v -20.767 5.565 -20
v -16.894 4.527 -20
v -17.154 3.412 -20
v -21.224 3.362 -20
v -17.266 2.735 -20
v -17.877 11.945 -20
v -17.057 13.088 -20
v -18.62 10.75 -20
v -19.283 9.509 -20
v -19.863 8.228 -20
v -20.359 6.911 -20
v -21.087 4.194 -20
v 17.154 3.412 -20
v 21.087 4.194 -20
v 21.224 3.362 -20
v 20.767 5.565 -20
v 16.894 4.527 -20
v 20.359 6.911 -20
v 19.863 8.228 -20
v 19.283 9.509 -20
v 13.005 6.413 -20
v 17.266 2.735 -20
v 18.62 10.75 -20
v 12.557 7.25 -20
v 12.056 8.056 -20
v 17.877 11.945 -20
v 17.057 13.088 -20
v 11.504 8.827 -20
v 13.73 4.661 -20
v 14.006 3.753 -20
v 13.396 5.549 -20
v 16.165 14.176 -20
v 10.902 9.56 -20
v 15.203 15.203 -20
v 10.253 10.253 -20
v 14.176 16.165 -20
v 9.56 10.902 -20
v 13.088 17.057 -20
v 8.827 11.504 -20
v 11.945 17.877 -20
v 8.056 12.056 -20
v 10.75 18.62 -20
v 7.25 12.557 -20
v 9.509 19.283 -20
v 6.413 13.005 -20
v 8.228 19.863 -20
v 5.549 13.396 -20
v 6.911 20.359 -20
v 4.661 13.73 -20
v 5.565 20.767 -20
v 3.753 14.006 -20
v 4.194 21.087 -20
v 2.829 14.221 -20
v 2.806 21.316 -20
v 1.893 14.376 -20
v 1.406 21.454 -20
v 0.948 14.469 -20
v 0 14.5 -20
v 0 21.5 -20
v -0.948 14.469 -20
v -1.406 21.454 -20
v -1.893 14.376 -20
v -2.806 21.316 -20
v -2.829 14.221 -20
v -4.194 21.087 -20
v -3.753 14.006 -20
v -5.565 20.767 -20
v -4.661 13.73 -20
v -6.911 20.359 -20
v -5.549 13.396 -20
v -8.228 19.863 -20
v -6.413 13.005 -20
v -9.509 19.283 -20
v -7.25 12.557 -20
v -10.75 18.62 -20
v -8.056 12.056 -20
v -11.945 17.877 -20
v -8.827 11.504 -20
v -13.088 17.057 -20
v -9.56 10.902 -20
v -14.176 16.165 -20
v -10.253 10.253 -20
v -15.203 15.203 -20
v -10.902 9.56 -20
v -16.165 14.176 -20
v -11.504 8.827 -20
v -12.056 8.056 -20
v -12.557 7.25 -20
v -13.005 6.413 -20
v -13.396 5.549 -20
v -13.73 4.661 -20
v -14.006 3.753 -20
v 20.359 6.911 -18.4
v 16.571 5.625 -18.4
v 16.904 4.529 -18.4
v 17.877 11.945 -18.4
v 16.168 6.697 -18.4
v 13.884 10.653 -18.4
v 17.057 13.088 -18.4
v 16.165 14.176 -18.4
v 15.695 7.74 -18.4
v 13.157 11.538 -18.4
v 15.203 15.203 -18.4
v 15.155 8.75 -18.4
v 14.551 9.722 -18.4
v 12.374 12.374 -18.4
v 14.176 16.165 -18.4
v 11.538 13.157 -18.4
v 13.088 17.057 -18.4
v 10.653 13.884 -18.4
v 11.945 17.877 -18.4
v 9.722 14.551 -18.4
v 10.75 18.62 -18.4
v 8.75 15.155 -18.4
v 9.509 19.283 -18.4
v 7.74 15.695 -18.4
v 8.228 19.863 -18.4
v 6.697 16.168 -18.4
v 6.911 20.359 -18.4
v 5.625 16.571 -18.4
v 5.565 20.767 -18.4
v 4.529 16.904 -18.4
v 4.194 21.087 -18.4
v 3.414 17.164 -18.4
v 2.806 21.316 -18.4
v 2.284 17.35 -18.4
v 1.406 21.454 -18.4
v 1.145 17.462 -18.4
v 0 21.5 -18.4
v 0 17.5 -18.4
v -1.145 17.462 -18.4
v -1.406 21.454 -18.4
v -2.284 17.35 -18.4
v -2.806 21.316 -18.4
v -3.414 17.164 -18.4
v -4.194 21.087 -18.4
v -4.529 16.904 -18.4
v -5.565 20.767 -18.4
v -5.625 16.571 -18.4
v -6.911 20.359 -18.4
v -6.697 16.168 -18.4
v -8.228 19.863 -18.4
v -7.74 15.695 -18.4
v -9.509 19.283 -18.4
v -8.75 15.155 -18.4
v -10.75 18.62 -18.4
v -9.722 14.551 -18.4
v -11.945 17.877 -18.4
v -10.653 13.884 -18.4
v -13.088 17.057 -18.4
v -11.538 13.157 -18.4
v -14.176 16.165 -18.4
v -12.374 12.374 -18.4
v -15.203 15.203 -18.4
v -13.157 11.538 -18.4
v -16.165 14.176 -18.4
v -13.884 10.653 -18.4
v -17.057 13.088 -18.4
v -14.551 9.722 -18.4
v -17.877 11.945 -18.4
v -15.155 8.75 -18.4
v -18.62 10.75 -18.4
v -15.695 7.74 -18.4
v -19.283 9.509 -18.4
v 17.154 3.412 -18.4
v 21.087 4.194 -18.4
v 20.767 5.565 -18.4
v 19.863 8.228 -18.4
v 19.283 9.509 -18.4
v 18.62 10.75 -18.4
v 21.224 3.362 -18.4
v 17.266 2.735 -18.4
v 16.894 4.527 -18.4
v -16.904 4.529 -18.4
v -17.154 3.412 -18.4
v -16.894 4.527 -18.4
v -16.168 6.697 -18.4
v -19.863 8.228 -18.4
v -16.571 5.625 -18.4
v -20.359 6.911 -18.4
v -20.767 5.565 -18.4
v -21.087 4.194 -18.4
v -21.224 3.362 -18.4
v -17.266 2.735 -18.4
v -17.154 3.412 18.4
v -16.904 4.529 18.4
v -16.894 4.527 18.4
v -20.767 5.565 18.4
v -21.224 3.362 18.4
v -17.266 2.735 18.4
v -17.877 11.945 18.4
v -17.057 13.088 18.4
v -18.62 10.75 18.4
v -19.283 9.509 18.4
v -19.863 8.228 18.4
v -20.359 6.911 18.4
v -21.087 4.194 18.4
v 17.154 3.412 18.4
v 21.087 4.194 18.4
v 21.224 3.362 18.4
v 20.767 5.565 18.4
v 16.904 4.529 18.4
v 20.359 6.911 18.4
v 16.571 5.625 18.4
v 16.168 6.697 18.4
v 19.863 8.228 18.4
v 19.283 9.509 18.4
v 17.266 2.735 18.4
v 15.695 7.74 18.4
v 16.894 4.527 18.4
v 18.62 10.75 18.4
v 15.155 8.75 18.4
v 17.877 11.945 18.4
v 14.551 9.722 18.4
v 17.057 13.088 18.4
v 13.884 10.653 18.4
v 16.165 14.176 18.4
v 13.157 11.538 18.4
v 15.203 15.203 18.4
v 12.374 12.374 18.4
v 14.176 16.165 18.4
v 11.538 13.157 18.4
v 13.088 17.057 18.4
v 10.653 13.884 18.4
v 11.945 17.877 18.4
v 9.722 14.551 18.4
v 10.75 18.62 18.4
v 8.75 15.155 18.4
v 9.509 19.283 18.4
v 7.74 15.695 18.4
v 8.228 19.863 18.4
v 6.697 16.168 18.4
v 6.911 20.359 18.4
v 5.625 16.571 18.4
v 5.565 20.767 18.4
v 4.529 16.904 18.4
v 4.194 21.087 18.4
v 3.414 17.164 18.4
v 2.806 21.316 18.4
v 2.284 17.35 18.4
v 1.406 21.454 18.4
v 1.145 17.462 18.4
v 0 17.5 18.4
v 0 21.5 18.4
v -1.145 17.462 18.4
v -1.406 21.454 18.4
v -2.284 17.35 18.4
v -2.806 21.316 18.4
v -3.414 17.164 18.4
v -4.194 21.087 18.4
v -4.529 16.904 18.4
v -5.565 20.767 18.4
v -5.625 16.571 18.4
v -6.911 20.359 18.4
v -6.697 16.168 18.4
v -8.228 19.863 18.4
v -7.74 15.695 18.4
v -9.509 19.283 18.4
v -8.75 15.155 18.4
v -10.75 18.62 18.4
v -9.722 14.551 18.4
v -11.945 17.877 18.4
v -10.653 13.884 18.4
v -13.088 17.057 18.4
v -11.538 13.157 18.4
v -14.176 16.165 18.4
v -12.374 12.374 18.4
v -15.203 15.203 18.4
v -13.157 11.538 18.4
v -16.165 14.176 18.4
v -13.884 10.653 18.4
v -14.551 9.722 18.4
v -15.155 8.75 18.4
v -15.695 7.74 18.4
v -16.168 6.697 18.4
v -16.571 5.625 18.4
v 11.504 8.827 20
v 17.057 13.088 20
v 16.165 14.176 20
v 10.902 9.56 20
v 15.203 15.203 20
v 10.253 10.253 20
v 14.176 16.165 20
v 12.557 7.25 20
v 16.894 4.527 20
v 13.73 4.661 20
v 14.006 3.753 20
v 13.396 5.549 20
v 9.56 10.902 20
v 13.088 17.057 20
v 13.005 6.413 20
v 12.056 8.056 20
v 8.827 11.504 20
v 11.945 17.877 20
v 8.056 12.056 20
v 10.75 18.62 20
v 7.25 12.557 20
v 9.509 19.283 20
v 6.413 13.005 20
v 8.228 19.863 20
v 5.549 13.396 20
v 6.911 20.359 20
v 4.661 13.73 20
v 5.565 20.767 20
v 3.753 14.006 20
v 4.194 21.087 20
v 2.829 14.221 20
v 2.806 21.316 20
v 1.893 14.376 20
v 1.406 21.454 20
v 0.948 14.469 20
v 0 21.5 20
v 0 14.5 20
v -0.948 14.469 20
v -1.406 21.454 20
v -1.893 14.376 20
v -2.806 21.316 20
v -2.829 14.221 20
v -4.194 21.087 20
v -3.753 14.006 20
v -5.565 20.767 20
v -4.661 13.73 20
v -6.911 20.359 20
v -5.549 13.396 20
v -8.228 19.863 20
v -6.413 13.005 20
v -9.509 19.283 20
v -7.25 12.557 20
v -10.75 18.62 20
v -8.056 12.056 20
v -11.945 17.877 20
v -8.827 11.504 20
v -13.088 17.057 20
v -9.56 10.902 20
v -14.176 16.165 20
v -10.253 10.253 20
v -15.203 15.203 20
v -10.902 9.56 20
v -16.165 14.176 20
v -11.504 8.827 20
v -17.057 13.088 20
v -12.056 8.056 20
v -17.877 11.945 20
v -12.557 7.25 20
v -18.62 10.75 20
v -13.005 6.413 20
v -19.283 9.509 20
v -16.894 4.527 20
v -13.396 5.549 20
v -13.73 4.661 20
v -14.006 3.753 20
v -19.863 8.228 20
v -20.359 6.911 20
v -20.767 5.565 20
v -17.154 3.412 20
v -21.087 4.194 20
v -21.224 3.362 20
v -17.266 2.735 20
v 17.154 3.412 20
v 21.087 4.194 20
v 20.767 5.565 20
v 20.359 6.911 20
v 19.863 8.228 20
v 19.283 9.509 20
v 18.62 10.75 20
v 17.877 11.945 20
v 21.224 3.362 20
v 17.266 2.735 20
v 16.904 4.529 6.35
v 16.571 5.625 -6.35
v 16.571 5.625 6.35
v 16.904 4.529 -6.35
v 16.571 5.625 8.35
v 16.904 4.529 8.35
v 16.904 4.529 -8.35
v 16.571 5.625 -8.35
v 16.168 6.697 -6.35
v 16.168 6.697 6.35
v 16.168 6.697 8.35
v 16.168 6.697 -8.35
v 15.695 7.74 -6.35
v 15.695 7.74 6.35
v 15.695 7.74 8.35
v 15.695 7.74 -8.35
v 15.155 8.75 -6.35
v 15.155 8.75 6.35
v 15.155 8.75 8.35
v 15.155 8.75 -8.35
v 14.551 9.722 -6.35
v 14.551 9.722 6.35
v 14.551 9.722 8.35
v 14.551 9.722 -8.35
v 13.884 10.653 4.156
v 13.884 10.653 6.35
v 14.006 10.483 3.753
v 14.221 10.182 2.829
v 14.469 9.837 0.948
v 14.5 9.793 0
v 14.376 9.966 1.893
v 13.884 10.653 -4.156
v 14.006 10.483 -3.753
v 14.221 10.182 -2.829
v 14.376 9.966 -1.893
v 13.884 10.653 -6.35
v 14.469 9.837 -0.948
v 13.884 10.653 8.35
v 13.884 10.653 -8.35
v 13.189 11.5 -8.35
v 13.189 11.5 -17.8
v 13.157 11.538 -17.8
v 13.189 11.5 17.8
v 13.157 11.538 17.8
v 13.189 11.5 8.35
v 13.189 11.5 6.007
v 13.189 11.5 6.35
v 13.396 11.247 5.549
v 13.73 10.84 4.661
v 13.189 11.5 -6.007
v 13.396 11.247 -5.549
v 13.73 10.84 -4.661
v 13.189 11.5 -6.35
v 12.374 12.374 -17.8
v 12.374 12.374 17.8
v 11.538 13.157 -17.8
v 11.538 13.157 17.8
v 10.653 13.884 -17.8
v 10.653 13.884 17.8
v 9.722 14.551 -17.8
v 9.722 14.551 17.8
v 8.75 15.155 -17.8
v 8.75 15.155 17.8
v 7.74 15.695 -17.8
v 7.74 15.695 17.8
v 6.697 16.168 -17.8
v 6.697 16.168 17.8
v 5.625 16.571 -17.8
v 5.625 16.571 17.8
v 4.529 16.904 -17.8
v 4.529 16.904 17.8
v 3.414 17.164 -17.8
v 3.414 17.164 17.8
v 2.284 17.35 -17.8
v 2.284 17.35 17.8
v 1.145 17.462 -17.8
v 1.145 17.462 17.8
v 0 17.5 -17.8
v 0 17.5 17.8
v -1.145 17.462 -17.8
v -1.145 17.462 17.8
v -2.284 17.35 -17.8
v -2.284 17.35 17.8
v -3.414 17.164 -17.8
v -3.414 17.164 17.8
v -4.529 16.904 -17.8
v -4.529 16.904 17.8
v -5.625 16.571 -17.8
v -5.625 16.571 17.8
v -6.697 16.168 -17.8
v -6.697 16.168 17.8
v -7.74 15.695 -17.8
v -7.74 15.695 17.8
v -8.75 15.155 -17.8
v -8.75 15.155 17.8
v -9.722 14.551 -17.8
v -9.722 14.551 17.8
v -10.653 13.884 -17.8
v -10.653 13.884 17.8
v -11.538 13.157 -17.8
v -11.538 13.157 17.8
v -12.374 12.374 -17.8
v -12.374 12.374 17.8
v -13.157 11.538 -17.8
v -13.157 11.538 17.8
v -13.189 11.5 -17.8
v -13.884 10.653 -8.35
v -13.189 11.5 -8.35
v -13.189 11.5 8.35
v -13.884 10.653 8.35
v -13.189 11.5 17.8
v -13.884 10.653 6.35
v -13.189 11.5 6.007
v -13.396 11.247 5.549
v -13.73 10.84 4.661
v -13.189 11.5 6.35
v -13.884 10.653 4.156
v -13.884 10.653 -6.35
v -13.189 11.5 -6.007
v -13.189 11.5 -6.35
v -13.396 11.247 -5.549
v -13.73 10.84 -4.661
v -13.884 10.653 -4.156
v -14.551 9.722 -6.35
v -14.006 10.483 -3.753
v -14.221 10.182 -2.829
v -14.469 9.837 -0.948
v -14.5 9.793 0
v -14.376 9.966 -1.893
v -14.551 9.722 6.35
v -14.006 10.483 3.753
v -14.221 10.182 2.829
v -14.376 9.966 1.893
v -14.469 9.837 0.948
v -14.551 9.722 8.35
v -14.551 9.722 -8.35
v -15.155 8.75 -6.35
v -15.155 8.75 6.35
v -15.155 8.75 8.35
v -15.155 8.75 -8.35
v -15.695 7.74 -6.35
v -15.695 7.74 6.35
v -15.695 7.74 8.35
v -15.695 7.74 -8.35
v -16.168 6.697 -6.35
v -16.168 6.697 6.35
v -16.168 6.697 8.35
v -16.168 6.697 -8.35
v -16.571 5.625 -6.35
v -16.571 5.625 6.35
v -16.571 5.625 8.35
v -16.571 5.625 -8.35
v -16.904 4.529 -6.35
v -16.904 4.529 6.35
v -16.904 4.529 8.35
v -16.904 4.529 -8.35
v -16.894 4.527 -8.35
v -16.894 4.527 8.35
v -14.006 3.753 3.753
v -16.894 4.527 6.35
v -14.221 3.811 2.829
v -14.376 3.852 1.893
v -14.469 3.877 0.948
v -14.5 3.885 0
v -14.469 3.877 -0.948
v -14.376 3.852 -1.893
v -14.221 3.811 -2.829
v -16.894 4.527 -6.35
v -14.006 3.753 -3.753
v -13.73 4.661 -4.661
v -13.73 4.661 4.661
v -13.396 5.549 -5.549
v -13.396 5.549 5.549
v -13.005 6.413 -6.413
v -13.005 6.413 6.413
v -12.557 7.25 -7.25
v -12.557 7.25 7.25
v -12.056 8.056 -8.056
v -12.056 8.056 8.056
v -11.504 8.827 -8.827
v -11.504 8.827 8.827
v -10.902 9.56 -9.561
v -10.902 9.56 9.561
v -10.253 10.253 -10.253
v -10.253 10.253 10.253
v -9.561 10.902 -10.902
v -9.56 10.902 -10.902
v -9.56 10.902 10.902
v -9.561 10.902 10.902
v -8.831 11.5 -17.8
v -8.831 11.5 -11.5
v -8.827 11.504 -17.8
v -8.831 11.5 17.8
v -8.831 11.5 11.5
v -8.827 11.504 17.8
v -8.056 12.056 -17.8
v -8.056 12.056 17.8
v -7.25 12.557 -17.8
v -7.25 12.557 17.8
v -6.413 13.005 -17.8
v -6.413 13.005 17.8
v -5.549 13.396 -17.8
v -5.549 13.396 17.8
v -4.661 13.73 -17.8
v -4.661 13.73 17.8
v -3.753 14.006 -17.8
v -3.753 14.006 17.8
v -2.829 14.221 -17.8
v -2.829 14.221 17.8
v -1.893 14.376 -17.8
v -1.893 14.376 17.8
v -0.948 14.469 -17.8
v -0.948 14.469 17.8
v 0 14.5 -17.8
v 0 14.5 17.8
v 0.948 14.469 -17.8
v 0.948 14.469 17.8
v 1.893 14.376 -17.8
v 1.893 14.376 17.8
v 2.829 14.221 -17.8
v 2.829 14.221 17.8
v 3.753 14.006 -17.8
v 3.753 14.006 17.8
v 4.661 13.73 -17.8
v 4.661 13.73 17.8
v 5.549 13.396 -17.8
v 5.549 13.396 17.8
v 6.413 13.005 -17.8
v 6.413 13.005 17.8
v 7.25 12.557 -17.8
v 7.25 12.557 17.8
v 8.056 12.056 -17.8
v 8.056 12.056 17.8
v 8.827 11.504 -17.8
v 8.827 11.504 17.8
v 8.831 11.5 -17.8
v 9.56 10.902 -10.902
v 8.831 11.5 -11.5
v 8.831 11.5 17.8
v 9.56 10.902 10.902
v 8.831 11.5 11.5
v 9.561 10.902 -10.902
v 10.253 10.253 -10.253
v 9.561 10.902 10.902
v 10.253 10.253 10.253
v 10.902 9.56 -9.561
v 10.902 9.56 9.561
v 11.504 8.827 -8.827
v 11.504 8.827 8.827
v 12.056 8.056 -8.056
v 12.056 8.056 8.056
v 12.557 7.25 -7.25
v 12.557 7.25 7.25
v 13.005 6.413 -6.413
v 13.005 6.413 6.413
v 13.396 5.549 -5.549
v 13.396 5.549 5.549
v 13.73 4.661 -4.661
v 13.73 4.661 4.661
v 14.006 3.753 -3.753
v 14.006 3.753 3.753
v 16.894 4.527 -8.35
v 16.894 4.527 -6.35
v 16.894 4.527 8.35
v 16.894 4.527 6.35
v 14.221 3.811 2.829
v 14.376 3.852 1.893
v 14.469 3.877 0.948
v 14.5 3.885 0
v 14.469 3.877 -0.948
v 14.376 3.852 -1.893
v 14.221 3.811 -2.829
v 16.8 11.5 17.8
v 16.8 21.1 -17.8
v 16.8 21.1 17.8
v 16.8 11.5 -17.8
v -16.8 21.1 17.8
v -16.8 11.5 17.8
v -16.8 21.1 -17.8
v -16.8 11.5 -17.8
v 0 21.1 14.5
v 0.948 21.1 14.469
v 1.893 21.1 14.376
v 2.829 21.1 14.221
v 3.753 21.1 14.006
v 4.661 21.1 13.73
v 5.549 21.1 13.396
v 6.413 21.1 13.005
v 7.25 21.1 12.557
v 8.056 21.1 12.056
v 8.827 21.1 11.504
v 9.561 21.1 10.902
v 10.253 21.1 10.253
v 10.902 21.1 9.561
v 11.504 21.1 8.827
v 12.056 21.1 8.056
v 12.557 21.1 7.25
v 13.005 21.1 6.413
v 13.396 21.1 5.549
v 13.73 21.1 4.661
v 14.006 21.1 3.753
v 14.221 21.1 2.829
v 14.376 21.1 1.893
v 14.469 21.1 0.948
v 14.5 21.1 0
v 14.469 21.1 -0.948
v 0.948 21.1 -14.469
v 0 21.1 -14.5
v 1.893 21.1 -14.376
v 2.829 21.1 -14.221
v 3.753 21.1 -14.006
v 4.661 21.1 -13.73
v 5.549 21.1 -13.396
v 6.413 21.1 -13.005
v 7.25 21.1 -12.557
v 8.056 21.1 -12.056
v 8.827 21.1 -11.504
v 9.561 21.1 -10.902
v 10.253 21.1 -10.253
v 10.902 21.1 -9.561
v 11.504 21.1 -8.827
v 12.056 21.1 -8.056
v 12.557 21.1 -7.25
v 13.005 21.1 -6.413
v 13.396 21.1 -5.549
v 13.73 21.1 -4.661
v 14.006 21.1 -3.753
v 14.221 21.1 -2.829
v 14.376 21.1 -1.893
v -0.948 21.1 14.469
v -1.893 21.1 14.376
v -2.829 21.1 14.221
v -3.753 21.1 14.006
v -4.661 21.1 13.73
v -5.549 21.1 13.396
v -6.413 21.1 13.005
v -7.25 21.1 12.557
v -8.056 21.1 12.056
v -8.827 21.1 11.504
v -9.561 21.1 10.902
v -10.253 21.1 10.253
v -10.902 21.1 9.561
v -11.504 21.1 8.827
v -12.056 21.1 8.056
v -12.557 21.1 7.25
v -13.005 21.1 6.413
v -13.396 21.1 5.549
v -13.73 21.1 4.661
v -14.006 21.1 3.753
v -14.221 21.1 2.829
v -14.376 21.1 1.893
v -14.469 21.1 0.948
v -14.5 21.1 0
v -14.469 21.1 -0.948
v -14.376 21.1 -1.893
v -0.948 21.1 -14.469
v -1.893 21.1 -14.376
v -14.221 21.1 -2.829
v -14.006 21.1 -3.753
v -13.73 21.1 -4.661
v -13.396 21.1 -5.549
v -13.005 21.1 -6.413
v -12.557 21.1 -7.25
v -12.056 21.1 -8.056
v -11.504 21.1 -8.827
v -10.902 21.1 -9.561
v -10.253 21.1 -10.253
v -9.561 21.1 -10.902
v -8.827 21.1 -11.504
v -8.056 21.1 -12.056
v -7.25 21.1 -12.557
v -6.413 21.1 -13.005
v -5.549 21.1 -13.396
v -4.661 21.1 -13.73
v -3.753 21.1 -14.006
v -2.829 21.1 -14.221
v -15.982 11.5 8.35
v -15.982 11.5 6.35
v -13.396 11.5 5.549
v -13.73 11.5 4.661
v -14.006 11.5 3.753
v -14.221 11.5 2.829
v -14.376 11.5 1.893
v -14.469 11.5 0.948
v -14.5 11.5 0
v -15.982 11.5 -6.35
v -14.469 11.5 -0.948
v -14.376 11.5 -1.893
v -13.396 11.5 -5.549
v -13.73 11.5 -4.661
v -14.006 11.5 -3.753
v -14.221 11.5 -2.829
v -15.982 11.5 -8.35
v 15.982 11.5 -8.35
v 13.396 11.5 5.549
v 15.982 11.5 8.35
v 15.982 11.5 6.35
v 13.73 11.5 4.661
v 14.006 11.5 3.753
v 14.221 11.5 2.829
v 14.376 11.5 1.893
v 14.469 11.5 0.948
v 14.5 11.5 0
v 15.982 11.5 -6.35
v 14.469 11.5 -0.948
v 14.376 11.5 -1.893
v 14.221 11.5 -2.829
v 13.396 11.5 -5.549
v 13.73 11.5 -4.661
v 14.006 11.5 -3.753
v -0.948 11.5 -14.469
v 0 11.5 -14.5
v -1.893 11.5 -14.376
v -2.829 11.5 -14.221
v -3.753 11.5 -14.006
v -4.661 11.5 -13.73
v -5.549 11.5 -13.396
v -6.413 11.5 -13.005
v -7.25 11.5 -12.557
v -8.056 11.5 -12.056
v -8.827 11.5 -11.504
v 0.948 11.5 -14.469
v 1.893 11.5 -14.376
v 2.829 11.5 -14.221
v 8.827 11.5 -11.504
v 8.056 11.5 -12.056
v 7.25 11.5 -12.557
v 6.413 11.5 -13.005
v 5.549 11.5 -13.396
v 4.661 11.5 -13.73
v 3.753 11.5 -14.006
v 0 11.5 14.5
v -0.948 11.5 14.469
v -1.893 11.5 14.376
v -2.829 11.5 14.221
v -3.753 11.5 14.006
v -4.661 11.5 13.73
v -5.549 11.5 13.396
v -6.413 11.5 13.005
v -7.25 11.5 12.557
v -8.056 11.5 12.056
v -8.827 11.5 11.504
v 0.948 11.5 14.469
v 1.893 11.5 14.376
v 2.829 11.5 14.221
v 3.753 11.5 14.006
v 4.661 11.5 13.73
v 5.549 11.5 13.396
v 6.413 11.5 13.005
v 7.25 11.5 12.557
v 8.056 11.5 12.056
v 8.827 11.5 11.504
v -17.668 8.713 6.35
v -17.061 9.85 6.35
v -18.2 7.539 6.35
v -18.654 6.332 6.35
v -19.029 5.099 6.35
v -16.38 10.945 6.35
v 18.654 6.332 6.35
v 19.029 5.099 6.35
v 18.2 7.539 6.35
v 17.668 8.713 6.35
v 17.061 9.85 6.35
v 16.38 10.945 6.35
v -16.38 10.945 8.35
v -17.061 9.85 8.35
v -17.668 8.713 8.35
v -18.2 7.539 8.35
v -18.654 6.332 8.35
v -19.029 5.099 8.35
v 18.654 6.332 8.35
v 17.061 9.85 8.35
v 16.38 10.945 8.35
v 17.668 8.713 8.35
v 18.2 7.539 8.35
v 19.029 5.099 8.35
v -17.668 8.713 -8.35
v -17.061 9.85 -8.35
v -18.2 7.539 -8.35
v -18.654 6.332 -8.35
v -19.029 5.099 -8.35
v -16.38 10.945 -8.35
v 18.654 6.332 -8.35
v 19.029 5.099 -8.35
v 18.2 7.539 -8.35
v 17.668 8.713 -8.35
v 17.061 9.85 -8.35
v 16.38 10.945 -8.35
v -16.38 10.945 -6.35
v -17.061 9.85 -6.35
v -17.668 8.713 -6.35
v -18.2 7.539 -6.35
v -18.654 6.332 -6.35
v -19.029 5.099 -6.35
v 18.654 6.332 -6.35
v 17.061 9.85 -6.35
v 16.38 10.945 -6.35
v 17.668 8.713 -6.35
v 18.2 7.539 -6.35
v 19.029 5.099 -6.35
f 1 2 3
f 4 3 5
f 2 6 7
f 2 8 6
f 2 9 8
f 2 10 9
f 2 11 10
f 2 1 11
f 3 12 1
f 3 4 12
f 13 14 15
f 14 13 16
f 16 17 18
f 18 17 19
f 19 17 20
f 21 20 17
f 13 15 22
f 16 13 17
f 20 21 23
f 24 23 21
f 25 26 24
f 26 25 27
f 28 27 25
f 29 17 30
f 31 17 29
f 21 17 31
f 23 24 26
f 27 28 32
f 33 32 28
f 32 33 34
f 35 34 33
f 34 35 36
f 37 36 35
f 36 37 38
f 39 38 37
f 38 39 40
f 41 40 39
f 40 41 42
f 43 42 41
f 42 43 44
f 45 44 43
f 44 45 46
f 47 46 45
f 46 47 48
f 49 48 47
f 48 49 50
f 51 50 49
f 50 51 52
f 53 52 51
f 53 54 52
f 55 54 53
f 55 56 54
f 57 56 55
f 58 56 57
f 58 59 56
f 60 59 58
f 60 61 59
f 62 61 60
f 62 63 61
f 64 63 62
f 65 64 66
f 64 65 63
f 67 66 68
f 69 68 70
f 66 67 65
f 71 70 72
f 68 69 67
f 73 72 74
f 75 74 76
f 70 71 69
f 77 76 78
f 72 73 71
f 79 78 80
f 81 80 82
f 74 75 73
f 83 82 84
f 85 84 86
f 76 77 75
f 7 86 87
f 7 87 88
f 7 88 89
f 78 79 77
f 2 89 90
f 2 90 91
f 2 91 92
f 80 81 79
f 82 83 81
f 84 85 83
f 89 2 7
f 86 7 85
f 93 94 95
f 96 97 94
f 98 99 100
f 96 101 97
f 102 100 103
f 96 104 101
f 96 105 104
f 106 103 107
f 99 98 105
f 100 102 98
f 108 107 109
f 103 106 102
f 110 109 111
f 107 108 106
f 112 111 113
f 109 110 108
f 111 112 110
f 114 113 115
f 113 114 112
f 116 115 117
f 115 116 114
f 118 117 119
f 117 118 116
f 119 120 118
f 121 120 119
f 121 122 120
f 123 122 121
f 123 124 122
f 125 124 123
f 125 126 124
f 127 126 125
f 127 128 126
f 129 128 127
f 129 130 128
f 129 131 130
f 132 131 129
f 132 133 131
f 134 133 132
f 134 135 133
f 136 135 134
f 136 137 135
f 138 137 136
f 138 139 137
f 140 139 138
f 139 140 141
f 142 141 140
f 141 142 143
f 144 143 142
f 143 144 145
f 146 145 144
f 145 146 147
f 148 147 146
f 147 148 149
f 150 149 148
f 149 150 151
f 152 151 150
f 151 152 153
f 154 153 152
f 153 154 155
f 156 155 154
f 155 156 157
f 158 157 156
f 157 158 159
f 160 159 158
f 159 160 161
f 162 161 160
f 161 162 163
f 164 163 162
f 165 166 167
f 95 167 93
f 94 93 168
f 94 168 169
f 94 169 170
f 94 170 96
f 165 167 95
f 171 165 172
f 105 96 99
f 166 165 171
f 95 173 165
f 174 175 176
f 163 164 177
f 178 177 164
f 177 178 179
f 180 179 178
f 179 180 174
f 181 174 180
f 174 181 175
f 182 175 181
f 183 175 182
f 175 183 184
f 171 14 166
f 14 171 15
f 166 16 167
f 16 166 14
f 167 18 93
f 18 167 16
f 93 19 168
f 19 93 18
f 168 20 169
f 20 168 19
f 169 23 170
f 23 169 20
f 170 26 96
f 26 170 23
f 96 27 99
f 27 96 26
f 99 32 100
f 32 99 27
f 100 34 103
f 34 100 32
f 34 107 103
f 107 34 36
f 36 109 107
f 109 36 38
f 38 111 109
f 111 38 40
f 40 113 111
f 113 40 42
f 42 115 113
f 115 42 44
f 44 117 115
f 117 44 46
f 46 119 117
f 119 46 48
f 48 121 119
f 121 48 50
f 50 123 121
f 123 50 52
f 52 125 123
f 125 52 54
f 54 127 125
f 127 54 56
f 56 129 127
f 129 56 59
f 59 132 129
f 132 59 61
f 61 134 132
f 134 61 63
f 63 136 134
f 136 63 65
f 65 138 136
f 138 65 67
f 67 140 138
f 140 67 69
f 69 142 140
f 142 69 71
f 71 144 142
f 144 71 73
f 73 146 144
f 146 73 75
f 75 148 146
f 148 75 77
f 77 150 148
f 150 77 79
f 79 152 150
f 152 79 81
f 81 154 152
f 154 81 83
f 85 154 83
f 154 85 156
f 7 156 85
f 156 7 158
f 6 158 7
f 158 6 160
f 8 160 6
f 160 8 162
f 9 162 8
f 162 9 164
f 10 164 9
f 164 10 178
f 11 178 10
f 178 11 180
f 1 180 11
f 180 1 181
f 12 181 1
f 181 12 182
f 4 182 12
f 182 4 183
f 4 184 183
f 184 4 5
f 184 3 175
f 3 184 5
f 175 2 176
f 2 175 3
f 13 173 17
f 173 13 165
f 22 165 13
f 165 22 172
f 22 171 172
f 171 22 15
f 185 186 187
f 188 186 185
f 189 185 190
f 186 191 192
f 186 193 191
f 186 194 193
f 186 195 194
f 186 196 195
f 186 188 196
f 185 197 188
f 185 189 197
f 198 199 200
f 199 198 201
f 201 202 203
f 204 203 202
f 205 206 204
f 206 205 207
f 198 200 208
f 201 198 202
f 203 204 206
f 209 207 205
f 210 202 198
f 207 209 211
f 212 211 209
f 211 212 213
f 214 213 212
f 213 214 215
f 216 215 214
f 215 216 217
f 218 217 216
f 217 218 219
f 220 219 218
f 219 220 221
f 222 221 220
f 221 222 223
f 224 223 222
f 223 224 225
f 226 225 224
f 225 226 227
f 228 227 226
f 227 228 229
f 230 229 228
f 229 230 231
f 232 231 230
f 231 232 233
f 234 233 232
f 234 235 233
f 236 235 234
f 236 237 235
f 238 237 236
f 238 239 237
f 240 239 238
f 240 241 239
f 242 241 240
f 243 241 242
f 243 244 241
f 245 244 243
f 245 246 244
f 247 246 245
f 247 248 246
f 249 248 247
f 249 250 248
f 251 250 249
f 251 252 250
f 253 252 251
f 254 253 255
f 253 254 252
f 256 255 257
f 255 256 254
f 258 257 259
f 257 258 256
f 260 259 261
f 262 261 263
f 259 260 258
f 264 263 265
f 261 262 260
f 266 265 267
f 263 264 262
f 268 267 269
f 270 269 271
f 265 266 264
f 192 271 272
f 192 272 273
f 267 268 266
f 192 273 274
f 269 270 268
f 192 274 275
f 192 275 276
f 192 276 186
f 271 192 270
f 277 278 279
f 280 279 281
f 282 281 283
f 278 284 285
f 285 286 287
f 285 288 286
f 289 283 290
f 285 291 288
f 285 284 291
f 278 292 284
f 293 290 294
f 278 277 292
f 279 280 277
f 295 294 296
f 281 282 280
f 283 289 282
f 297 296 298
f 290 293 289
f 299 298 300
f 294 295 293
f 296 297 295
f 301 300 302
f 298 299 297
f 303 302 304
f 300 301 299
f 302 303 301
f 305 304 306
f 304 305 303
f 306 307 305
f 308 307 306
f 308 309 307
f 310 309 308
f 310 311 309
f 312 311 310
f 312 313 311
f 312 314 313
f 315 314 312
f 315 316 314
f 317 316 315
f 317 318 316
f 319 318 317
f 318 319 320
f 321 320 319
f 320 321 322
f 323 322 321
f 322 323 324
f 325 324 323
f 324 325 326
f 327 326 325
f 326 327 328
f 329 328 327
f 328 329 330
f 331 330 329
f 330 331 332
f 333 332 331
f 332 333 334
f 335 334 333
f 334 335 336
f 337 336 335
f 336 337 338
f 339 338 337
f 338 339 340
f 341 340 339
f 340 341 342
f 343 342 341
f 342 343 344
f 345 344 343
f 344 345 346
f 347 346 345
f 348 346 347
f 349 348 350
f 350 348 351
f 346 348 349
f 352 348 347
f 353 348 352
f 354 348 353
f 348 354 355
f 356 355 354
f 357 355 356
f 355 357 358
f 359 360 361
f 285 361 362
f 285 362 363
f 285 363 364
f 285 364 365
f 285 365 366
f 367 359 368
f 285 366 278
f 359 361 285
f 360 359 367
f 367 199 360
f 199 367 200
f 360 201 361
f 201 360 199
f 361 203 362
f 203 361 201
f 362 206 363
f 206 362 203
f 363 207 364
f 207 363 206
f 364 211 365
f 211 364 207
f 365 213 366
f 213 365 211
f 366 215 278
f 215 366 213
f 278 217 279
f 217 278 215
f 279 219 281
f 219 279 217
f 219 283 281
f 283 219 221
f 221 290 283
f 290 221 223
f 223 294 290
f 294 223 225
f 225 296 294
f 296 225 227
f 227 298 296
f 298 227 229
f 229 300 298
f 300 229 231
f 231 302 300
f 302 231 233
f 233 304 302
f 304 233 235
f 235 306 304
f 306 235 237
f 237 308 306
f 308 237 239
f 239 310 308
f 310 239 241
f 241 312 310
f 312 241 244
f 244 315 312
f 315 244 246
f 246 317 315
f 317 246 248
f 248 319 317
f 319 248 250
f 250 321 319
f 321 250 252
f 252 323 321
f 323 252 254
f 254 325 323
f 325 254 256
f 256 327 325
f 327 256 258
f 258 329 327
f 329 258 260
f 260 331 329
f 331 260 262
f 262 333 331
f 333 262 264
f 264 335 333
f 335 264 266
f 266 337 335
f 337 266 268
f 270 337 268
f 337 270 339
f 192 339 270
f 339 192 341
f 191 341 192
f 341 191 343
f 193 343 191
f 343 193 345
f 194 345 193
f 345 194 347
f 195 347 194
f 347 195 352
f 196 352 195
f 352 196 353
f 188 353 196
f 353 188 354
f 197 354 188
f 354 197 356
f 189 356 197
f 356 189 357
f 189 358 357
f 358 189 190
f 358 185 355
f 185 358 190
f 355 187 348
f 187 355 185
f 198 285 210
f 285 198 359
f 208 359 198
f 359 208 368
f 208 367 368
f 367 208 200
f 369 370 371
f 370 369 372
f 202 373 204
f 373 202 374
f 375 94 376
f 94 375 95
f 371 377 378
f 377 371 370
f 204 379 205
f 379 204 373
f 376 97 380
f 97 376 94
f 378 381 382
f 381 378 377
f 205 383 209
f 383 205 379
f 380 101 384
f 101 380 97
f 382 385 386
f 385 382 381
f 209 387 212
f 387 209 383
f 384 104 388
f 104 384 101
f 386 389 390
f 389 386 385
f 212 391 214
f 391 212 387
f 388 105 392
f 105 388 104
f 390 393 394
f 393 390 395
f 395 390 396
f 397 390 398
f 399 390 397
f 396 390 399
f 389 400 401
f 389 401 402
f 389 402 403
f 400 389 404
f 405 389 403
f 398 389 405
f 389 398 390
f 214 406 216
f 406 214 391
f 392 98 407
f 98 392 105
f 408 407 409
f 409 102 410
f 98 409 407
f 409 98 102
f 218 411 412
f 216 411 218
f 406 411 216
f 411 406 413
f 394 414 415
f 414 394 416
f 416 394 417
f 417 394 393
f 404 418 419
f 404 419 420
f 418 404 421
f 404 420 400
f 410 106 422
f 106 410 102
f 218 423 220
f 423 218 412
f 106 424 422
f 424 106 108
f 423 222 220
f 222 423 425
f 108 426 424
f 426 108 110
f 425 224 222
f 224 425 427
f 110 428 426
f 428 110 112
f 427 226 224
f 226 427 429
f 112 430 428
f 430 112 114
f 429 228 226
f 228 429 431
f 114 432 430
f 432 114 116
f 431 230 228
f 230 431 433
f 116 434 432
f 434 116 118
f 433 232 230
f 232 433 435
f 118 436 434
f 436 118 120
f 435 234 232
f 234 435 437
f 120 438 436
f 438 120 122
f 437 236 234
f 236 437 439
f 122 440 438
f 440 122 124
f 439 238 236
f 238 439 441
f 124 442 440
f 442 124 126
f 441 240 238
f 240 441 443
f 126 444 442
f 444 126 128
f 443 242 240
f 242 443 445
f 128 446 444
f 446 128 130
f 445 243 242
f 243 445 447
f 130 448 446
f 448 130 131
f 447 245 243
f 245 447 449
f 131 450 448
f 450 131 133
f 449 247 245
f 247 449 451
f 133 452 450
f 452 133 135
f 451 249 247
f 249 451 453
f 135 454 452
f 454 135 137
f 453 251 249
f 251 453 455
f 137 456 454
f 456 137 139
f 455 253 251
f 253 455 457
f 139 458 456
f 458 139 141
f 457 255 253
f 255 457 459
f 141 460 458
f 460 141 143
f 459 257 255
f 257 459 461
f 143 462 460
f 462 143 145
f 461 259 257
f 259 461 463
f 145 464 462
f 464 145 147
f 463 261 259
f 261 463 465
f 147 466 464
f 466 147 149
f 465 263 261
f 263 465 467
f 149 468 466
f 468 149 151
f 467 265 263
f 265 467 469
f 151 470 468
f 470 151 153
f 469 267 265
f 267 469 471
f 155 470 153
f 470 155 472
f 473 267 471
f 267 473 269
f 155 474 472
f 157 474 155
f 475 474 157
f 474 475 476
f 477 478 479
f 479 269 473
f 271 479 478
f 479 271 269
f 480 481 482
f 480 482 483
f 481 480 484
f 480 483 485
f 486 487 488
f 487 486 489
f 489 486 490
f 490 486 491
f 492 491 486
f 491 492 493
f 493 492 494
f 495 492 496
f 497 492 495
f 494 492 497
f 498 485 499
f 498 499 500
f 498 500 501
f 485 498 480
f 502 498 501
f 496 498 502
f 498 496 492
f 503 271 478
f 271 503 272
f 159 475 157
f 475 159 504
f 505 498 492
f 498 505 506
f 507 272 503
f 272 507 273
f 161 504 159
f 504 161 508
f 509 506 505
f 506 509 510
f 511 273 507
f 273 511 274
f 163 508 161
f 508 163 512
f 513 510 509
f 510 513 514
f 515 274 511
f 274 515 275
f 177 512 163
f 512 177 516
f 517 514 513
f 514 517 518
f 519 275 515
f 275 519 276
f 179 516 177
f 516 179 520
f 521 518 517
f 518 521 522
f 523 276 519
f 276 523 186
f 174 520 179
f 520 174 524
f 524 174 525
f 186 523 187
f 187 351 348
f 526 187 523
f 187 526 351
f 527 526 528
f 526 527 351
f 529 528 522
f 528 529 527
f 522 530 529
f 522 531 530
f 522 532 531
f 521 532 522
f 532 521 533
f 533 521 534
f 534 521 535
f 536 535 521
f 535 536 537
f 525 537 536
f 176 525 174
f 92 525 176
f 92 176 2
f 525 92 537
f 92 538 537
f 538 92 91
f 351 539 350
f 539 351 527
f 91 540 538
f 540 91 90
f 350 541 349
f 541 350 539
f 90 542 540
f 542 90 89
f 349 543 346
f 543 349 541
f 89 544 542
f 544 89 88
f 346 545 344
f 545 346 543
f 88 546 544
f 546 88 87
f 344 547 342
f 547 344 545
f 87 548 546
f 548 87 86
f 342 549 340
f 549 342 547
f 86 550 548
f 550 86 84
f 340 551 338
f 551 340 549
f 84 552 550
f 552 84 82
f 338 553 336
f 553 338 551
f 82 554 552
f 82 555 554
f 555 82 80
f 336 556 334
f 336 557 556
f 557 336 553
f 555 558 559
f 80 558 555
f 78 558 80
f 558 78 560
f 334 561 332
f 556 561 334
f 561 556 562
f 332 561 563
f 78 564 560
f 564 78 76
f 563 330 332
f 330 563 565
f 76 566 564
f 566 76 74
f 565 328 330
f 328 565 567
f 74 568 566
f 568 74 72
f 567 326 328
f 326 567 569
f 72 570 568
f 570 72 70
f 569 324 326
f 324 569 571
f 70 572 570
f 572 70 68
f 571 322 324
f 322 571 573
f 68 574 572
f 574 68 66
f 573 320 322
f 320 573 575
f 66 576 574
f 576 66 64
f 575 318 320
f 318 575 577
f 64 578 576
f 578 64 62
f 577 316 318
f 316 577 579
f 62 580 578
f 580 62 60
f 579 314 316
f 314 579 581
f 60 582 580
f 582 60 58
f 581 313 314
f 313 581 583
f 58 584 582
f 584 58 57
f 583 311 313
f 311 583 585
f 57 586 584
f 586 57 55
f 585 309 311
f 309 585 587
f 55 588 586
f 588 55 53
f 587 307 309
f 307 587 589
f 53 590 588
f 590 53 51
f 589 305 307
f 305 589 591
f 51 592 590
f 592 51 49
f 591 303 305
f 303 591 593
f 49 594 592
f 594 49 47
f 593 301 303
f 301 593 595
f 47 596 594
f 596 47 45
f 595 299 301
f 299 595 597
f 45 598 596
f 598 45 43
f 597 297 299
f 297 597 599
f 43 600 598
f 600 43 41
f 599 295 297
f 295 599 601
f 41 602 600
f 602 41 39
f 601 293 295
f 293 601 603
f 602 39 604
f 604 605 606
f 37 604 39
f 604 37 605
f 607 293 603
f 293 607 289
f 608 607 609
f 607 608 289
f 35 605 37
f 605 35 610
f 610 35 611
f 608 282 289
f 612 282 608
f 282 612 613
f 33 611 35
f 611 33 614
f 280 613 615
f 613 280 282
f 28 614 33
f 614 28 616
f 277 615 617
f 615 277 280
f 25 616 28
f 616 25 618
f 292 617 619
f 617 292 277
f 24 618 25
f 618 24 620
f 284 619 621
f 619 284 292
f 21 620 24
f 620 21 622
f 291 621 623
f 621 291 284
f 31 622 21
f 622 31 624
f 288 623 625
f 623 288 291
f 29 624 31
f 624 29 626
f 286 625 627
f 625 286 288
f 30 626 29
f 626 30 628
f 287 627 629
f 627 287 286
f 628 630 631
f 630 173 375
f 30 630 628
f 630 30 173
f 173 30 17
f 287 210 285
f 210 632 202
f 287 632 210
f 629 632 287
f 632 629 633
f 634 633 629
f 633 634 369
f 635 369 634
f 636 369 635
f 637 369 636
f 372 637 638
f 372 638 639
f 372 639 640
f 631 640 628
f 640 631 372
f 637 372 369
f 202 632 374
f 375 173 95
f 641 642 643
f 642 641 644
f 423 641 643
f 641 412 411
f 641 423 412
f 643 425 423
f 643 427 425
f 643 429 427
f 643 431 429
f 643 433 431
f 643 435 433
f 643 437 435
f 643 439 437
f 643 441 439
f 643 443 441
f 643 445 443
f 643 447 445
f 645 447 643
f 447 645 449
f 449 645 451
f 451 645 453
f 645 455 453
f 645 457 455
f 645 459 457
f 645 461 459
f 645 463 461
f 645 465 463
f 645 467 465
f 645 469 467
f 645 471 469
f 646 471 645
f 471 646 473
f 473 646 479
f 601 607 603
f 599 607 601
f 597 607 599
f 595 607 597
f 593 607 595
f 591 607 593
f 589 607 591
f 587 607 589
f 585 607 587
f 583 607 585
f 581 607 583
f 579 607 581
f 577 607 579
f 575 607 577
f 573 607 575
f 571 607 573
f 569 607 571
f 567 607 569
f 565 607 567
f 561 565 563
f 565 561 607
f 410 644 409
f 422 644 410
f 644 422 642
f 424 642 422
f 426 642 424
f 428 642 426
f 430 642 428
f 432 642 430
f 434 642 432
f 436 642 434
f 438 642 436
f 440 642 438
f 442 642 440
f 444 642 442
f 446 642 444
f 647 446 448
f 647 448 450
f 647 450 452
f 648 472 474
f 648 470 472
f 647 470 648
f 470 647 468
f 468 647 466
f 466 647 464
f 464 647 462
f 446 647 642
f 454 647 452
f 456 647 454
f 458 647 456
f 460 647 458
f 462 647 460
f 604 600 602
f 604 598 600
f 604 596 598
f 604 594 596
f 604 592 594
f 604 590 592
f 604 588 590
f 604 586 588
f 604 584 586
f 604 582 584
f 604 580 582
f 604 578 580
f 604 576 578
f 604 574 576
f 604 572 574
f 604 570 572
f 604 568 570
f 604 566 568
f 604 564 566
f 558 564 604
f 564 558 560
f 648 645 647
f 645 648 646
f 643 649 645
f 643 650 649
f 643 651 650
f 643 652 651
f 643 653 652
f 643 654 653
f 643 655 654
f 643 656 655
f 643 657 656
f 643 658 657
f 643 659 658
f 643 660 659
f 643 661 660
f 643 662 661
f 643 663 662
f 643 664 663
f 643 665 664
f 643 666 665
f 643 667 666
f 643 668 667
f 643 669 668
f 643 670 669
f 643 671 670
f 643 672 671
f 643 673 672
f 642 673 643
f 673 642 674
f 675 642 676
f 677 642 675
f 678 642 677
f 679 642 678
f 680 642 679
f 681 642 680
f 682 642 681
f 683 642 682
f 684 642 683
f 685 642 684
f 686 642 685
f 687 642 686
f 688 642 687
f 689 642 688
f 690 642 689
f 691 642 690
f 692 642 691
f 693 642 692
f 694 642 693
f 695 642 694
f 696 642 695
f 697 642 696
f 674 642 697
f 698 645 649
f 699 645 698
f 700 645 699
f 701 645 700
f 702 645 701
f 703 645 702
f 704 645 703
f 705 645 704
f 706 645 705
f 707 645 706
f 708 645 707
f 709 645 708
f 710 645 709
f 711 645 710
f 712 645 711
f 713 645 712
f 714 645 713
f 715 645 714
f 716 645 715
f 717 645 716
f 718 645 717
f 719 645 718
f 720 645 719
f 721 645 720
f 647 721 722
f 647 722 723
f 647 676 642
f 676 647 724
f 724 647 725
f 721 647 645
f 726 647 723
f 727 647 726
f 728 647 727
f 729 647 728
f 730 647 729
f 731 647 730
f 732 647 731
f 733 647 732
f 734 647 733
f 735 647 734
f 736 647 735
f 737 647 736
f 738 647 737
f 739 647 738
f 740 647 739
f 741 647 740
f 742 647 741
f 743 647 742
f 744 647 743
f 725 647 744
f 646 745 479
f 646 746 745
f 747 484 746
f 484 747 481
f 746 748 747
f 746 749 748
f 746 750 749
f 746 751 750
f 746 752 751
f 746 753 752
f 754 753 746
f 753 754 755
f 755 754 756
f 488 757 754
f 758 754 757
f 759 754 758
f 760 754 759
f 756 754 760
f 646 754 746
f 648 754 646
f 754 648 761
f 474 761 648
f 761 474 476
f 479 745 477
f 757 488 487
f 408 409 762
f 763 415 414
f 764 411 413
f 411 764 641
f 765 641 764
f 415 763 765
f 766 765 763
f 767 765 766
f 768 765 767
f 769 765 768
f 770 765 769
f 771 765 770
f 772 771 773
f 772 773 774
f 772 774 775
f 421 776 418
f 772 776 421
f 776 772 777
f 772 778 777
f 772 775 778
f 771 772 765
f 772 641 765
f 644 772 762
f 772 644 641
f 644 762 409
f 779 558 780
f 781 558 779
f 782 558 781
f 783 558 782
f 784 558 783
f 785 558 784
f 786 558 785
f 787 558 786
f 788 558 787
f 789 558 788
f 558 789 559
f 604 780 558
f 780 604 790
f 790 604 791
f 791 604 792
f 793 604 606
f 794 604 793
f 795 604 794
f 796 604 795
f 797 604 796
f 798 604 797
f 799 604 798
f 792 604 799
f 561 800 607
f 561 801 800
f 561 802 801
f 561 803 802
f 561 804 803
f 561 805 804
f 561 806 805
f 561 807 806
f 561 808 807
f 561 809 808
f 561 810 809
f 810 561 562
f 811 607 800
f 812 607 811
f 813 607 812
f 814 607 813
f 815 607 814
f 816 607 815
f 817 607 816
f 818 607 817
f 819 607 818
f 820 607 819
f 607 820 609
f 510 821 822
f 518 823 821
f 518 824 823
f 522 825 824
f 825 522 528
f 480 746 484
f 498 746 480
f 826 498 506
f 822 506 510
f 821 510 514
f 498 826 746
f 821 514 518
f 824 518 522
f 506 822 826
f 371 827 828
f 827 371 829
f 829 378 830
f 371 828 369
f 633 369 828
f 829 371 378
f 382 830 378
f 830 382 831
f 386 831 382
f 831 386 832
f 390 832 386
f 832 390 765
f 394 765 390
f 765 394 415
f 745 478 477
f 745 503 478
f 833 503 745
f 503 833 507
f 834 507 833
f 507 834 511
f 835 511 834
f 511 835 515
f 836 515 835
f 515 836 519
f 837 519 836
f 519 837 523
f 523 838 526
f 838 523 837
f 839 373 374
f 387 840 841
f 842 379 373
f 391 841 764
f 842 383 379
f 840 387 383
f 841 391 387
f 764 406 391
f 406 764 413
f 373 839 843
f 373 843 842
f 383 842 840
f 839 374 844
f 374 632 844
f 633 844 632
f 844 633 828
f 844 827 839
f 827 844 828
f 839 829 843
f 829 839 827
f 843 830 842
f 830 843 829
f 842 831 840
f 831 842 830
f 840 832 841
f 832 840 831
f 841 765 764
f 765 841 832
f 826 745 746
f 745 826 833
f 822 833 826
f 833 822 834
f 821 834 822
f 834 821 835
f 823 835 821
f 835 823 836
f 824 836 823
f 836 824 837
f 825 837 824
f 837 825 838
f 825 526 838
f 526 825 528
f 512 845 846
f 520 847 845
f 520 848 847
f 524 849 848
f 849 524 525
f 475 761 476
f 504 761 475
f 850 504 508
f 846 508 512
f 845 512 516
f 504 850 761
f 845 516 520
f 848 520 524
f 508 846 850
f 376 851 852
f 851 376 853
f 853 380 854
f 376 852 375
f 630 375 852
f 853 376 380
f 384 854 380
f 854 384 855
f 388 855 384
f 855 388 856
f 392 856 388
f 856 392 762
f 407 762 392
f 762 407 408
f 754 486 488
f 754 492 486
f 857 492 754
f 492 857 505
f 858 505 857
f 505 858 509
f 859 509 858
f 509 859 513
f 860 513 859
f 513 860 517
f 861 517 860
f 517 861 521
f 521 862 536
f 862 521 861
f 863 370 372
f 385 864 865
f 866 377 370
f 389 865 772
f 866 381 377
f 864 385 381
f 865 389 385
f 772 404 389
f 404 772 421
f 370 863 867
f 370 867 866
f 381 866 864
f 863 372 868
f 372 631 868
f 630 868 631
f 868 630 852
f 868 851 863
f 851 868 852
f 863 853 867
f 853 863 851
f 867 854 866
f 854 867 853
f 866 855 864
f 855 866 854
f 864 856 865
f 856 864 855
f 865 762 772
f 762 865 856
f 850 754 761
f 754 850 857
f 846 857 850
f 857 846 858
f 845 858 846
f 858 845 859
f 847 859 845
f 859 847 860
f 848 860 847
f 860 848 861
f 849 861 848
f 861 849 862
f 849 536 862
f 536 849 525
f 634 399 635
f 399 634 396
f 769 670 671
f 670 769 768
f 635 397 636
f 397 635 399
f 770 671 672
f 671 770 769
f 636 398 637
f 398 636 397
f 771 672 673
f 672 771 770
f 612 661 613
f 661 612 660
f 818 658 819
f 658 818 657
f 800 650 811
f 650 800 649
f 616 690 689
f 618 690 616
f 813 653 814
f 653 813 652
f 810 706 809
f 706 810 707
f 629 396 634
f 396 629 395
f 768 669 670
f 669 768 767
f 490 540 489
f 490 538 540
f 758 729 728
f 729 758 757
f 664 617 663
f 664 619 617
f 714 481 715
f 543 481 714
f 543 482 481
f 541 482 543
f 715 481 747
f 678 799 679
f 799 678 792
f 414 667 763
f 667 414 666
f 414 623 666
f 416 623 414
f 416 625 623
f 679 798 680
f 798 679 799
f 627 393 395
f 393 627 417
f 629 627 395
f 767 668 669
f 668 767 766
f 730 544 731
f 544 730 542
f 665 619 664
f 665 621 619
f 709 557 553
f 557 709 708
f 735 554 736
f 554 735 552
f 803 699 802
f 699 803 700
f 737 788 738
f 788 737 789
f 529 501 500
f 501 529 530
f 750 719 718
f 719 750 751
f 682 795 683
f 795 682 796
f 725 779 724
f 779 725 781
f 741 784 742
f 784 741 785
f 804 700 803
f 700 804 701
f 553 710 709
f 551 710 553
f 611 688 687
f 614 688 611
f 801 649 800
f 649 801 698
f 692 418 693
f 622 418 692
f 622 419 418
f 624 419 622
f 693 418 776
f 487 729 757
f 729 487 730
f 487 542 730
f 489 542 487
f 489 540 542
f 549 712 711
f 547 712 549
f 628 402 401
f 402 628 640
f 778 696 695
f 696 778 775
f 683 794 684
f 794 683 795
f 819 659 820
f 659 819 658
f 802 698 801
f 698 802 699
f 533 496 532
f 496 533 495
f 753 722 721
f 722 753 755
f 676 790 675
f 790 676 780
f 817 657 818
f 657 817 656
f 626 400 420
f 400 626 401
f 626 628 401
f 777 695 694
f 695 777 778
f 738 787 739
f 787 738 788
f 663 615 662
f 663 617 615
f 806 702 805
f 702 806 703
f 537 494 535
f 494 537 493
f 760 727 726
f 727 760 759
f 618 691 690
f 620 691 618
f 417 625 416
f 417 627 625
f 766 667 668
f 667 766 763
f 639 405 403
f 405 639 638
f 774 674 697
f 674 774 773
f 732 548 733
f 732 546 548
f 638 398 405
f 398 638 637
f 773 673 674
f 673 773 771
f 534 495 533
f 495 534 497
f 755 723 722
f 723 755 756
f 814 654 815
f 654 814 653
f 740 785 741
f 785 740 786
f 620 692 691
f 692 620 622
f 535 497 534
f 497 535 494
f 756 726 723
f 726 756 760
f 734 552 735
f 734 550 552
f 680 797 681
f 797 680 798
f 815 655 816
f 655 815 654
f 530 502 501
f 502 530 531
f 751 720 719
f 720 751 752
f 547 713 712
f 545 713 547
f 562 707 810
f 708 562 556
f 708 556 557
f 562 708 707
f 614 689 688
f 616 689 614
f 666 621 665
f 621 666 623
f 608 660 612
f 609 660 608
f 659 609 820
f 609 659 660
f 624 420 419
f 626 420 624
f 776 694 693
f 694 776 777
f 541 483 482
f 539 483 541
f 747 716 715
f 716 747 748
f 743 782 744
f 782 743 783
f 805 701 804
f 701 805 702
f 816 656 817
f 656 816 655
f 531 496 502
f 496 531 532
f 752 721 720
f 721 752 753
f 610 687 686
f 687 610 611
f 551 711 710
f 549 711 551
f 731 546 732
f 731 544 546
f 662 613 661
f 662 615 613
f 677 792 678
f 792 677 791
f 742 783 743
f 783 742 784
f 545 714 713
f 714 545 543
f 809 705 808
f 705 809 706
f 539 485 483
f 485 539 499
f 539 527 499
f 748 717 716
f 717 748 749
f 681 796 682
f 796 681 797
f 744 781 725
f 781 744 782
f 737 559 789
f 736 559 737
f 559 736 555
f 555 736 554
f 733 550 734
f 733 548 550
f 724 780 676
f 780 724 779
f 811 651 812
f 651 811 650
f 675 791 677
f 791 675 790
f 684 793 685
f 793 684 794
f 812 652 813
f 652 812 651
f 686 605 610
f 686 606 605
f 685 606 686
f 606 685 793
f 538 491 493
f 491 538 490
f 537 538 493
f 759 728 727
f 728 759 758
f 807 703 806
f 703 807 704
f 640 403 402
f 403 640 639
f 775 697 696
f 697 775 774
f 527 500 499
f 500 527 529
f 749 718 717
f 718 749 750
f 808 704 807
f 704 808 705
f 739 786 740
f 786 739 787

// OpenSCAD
// file: saddle.scad
// =============================================================================
// saddle.scad — parametric pipe saddle that carries a 27 mm piezo disc.
// Shared by clamp.scad (sensor) and exciter_mount.scad (reference exciter).
// Frame: pipe axis = Z; pipe center at origin; crown (piezo) at +Y.
//
// Band retention is ADDITIVE (raised ridges the hose-clamp band nests between)
// rather than subtractive grooves — grooves cut through the thin side legs and
// detach a wing. Ridges keep the part a single manifold solid.
// =============================================================================
include <config.scad>

// 2D wedge polygon spanning [a0,a1] degrees, radius r, apex at origin.
module sector2d(r, a0, a1) {
    step = 3;
    pts = concat(
        [[0, 0]],
        [ for (a = [a0 : step : a1]) [r * cos(a), r * sin(a)] ],
        [[r * cos(a1), r * sin(a1)]]
    );
    polygon(pts);
}

function outer_r_of() = pipe_r + seat_clear + sad_wall;

// 2D cross-section of the wrap shell (annular sector centered on +Y / 90 deg).
module saddle_section(rc, outer_r, wrap_deg) {
    intersection() {
        difference() { circle(r = outer_r); circle(r = rc); }
        sector2d(outer_r + 1, 90 - wrap_deg / 2, 90 + wrap_deg / 2);
    }
}

// Raised ridge (additive) that stops the band sliding along the pipe axis.
module band_ridge(z, wrap_deg) {
    orr = outer_r_of();
    translate([0, 0, z])
        linear_extrude(height = 2.0, center = true)
            intersection() {
                difference() { circle(orr + band_t + 1.0); circle(orr - eps); }
                sector2d(orr + band_t + 2, 90 - wrap_deg/2, 90 + wrap_deg/2);
            }
}

// Crown boss: extra material at +Y so the piezo pocket has depth to live in.
module crown_boss(len) {
    rc = pipe_r + seat_clear;
    boss_w = piezo_pocket_d + 2 * sad_wall;      // across the pipe (X)
    boss_l = min(len - 2, piezo_pocket_d + 8);   // along the pipe (Z)
    boss_top = rc + piezo_pocket_h + pad_recess_h + 1.6;
    translate([-boss_w/2, rc - 3, -boss_l/2])
        cube([boss_w, boss_top - (rc - 3), boss_l]);
}

// Piezo pocket + compliant-pad recess + wire slot, cut radially at the crown.
module piezo_cavity(rc, len) {
    // Pocket for the disc (free fit), opening toward the pipe (-Y into channel).
    translate([0, rc - eps, 0]) rotate([-90, 0, 0])
        cylinder(h = piezo_pocket_h, d = piezo_pocket_d);
    // Compliant-pad recess behind the disc (narrower).
    translate([0, rc - eps + piezo_pocket_h, 0]) rotate([-90, 0, 0])
        cylinder(h = pad_recess_h + eps, d = pad_recess_d);
    // Wire exit slot straight out through the crown.
    translate([-wire_slot_w/2, rc, -wire_slot_w/2])
        cube([wire_slot_w, outer_r_of() + pad_recess_h + 6, wire_slot_w]);
}

// Foam-retention lip: two end flanges the closed-cell foam tucks under.
module foam_lip(len, wrap_deg) {
    orr = outer_r_of();
    for (s = [-1, 1])
        translate([0, 0, s * (len/2 - foam_lip_t/2)])
            linear_extrude(height = foam_lip_t, center = true)
                intersection() {
                    difference() { circle(orr + foam_lip_h); circle(orr - eps); }
                    sector2d(orr + foam_lip_h + 1, 90 - wrap_deg/2 - 6, 90 + wrap_deg/2 + 6);
                }
}

// Full saddle. with_foam adds the foam retention flanges (sensor only).
module saddle(len, wrap, with_foam = true) {
    rc  = pipe_r + seat_clear;
    orr = outer_r_of();
    band_gap = band_w / 2 + 1.0;   // ridges flank a central band seat
    difference() {
        union() {
            linear_extrude(height = len, center = true) saddle_section(rc, orr, wrap);
            crown_boss(len);
            band_ridge( band_gap, wrap);
            band_ridge(-band_gap, wrap);
            if (with_foam) foam_lip(len, wrap);
        }
        piezo_cavity(rc, len);
        // Re-assert the pipe bore so nothing intrudes on the pipe surface.
        rotate([90, 0, 0]) cylinder(h = len + 6, r = rc, center = true);
    }
}
// file: config.scad
// =============================================================================
// config.scad — SINGLE SOURCE OF TRUTH for every numeric parameter.
// Acoustic Pipe Monitor: sensor saddle, enclosure, exciter mount.
// Units: millimetres. Target: 1" copper main, OD 28.6 mm. Material: PETG.
// =============================================================================

// ---- Global print/fit ----
$fn            = 96;    // curve smoothness for final render (drop to 48 for quick iterations)
eps            = 0.01;  // tiny overlap to avoid coplanar-face artifacts
fit_press      = 0.2;   // interference / press-fit
fit_snug       = 0.3;   // snug locating fit
fit_free       = 0.4;   // free sliding fit

// ---- Pipe ----
pipe_od        = 28.6;              // 1" nominal copper OD (operator input)
pipe_r         = pipe_od / 2;       // 14.3
seat_clear     = 0.2;               // saddle channel clearance over the pipe
kapton_gap     = 0.25;              // piezo-to-pipe isolation standoff (grease+Kapton sandwich)

// ---- Piezo disc (sensor + exciter, spec BOM item 4) ----
piezo_d        = 27.0;
piezo_pocket_d = piezo_d + 0.6;     // 27.6 — FREE fit; never press a fragile disc
piezo_t        = 0.6;               // brass carrier thickness (measure yours; 27mm ~0.5-0.6)
piezo_pocket_h = 2.0;               // pocket depth (disc + a little)
pad_recess_d   = 24.0;             // compliant-pad recess behind the disc
pad_recess_h   = 3.0;
wire_slot_w    = 4.0;               // exit for the two solder leads

// ---- Sensor saddle ----
sad_wall       = 3.0;               // structural wall around the pipe channel
sad_len        = 40.0;              // length along the pipe axis
sad_wrap_deg   = 150;               // channel wrap angle (<=160 keeps crown support-free)
band_w         = 12.7;              // 1/2" stainless hose-clamp band width
band_t         = 1.2;               // band thickness + clearance
band_inset     = 6.0;              // distance of band channel from each saddle end
foam_lip_h     = 4.0;               // shroud lip retaining closed-cell foam over the assembly
foam_lip_t     = 1.6;

// ---- Exciter saddle (slimmer; same piezo) ----
// Must exceed piezo_pocket_d so the crown pocket does not slice off the ends.
exc_len        = 34.0;
exc_wrap_deg   = 150;
exciter_spacing = 300.0;            // nominal sensor<->exciter distance (informational; set by tape)

// ---- Enclosure (hybrid: printed shell + copper lining) ----
enc_ix         = 92.0;   // internal X (ESP32-S3-DevKitC-1 ~63x26 + PCM1808 + charge-amp board)
enc_iy         = 62.0;   // internal Y
enc_iz         = 32.0;   // internal Z (headroom for headers)
enc_wall       = 2.4;    // 6 perimeters @ 0.4 nozzle
enc_floor      = 2.4;
lid_h          = 6.0;    // lid skirt height
lid_reg        = 1.6;    // register lip depth into the body
lid_reg_clear  = fit_snug;

// Copper-lined Faraday pocket over the charge-amp summing node
cu_pocket_x    = 40.0;
cu_pocket_y    = 30.0;
cu_pocket_d    = 1.2;    // recess depth for copper tape/paint
ground_boss_d  = 8.0;    // single-point analog ground boss
ground_boss_h  = 6.0;
ground_tap_d   = 2.5;    // pilot for an M3 self-tapping ground screw

// PCB standoffs
pcb_x          = 63.0;   // DevKitC-1 footprint
pcb_y          = 26.0;
standoff_d     = 6.0;
standoff_h     = 5.0;
standoff_pilot = 2.5;    // M3 self-tap pilot
pcb_hole_inset = 3.0;    // hole center inset from pcb corner (typical)

// Cable entries (slit glands)
gland_d        = 6.0;
gland_slit_w   = 1.6;    // slit so a pre-terminated lead can be seated

// Corner screw bosses (lid -> body)
screw_boss_d   = 7.0;
screw_pilot_d  = 2.6;    // M3 self-tap
screw_clear_d  = 3.4;    // M3 clearance in the lid
// main file
// =============================================================================
// clamp.scad — sensor saddle (primary piezo) for the 28.6 mm main.
// Renders the sensor saddle with foam-retention lip.
// Build: openscad -o ../stl/clamp.stl clamp.scad
// =============================================================================
include <config.scad>
use <saddle.scad>

saddle(len = sad_len, wrap = sad_wrap_deg, with_foam = true);
